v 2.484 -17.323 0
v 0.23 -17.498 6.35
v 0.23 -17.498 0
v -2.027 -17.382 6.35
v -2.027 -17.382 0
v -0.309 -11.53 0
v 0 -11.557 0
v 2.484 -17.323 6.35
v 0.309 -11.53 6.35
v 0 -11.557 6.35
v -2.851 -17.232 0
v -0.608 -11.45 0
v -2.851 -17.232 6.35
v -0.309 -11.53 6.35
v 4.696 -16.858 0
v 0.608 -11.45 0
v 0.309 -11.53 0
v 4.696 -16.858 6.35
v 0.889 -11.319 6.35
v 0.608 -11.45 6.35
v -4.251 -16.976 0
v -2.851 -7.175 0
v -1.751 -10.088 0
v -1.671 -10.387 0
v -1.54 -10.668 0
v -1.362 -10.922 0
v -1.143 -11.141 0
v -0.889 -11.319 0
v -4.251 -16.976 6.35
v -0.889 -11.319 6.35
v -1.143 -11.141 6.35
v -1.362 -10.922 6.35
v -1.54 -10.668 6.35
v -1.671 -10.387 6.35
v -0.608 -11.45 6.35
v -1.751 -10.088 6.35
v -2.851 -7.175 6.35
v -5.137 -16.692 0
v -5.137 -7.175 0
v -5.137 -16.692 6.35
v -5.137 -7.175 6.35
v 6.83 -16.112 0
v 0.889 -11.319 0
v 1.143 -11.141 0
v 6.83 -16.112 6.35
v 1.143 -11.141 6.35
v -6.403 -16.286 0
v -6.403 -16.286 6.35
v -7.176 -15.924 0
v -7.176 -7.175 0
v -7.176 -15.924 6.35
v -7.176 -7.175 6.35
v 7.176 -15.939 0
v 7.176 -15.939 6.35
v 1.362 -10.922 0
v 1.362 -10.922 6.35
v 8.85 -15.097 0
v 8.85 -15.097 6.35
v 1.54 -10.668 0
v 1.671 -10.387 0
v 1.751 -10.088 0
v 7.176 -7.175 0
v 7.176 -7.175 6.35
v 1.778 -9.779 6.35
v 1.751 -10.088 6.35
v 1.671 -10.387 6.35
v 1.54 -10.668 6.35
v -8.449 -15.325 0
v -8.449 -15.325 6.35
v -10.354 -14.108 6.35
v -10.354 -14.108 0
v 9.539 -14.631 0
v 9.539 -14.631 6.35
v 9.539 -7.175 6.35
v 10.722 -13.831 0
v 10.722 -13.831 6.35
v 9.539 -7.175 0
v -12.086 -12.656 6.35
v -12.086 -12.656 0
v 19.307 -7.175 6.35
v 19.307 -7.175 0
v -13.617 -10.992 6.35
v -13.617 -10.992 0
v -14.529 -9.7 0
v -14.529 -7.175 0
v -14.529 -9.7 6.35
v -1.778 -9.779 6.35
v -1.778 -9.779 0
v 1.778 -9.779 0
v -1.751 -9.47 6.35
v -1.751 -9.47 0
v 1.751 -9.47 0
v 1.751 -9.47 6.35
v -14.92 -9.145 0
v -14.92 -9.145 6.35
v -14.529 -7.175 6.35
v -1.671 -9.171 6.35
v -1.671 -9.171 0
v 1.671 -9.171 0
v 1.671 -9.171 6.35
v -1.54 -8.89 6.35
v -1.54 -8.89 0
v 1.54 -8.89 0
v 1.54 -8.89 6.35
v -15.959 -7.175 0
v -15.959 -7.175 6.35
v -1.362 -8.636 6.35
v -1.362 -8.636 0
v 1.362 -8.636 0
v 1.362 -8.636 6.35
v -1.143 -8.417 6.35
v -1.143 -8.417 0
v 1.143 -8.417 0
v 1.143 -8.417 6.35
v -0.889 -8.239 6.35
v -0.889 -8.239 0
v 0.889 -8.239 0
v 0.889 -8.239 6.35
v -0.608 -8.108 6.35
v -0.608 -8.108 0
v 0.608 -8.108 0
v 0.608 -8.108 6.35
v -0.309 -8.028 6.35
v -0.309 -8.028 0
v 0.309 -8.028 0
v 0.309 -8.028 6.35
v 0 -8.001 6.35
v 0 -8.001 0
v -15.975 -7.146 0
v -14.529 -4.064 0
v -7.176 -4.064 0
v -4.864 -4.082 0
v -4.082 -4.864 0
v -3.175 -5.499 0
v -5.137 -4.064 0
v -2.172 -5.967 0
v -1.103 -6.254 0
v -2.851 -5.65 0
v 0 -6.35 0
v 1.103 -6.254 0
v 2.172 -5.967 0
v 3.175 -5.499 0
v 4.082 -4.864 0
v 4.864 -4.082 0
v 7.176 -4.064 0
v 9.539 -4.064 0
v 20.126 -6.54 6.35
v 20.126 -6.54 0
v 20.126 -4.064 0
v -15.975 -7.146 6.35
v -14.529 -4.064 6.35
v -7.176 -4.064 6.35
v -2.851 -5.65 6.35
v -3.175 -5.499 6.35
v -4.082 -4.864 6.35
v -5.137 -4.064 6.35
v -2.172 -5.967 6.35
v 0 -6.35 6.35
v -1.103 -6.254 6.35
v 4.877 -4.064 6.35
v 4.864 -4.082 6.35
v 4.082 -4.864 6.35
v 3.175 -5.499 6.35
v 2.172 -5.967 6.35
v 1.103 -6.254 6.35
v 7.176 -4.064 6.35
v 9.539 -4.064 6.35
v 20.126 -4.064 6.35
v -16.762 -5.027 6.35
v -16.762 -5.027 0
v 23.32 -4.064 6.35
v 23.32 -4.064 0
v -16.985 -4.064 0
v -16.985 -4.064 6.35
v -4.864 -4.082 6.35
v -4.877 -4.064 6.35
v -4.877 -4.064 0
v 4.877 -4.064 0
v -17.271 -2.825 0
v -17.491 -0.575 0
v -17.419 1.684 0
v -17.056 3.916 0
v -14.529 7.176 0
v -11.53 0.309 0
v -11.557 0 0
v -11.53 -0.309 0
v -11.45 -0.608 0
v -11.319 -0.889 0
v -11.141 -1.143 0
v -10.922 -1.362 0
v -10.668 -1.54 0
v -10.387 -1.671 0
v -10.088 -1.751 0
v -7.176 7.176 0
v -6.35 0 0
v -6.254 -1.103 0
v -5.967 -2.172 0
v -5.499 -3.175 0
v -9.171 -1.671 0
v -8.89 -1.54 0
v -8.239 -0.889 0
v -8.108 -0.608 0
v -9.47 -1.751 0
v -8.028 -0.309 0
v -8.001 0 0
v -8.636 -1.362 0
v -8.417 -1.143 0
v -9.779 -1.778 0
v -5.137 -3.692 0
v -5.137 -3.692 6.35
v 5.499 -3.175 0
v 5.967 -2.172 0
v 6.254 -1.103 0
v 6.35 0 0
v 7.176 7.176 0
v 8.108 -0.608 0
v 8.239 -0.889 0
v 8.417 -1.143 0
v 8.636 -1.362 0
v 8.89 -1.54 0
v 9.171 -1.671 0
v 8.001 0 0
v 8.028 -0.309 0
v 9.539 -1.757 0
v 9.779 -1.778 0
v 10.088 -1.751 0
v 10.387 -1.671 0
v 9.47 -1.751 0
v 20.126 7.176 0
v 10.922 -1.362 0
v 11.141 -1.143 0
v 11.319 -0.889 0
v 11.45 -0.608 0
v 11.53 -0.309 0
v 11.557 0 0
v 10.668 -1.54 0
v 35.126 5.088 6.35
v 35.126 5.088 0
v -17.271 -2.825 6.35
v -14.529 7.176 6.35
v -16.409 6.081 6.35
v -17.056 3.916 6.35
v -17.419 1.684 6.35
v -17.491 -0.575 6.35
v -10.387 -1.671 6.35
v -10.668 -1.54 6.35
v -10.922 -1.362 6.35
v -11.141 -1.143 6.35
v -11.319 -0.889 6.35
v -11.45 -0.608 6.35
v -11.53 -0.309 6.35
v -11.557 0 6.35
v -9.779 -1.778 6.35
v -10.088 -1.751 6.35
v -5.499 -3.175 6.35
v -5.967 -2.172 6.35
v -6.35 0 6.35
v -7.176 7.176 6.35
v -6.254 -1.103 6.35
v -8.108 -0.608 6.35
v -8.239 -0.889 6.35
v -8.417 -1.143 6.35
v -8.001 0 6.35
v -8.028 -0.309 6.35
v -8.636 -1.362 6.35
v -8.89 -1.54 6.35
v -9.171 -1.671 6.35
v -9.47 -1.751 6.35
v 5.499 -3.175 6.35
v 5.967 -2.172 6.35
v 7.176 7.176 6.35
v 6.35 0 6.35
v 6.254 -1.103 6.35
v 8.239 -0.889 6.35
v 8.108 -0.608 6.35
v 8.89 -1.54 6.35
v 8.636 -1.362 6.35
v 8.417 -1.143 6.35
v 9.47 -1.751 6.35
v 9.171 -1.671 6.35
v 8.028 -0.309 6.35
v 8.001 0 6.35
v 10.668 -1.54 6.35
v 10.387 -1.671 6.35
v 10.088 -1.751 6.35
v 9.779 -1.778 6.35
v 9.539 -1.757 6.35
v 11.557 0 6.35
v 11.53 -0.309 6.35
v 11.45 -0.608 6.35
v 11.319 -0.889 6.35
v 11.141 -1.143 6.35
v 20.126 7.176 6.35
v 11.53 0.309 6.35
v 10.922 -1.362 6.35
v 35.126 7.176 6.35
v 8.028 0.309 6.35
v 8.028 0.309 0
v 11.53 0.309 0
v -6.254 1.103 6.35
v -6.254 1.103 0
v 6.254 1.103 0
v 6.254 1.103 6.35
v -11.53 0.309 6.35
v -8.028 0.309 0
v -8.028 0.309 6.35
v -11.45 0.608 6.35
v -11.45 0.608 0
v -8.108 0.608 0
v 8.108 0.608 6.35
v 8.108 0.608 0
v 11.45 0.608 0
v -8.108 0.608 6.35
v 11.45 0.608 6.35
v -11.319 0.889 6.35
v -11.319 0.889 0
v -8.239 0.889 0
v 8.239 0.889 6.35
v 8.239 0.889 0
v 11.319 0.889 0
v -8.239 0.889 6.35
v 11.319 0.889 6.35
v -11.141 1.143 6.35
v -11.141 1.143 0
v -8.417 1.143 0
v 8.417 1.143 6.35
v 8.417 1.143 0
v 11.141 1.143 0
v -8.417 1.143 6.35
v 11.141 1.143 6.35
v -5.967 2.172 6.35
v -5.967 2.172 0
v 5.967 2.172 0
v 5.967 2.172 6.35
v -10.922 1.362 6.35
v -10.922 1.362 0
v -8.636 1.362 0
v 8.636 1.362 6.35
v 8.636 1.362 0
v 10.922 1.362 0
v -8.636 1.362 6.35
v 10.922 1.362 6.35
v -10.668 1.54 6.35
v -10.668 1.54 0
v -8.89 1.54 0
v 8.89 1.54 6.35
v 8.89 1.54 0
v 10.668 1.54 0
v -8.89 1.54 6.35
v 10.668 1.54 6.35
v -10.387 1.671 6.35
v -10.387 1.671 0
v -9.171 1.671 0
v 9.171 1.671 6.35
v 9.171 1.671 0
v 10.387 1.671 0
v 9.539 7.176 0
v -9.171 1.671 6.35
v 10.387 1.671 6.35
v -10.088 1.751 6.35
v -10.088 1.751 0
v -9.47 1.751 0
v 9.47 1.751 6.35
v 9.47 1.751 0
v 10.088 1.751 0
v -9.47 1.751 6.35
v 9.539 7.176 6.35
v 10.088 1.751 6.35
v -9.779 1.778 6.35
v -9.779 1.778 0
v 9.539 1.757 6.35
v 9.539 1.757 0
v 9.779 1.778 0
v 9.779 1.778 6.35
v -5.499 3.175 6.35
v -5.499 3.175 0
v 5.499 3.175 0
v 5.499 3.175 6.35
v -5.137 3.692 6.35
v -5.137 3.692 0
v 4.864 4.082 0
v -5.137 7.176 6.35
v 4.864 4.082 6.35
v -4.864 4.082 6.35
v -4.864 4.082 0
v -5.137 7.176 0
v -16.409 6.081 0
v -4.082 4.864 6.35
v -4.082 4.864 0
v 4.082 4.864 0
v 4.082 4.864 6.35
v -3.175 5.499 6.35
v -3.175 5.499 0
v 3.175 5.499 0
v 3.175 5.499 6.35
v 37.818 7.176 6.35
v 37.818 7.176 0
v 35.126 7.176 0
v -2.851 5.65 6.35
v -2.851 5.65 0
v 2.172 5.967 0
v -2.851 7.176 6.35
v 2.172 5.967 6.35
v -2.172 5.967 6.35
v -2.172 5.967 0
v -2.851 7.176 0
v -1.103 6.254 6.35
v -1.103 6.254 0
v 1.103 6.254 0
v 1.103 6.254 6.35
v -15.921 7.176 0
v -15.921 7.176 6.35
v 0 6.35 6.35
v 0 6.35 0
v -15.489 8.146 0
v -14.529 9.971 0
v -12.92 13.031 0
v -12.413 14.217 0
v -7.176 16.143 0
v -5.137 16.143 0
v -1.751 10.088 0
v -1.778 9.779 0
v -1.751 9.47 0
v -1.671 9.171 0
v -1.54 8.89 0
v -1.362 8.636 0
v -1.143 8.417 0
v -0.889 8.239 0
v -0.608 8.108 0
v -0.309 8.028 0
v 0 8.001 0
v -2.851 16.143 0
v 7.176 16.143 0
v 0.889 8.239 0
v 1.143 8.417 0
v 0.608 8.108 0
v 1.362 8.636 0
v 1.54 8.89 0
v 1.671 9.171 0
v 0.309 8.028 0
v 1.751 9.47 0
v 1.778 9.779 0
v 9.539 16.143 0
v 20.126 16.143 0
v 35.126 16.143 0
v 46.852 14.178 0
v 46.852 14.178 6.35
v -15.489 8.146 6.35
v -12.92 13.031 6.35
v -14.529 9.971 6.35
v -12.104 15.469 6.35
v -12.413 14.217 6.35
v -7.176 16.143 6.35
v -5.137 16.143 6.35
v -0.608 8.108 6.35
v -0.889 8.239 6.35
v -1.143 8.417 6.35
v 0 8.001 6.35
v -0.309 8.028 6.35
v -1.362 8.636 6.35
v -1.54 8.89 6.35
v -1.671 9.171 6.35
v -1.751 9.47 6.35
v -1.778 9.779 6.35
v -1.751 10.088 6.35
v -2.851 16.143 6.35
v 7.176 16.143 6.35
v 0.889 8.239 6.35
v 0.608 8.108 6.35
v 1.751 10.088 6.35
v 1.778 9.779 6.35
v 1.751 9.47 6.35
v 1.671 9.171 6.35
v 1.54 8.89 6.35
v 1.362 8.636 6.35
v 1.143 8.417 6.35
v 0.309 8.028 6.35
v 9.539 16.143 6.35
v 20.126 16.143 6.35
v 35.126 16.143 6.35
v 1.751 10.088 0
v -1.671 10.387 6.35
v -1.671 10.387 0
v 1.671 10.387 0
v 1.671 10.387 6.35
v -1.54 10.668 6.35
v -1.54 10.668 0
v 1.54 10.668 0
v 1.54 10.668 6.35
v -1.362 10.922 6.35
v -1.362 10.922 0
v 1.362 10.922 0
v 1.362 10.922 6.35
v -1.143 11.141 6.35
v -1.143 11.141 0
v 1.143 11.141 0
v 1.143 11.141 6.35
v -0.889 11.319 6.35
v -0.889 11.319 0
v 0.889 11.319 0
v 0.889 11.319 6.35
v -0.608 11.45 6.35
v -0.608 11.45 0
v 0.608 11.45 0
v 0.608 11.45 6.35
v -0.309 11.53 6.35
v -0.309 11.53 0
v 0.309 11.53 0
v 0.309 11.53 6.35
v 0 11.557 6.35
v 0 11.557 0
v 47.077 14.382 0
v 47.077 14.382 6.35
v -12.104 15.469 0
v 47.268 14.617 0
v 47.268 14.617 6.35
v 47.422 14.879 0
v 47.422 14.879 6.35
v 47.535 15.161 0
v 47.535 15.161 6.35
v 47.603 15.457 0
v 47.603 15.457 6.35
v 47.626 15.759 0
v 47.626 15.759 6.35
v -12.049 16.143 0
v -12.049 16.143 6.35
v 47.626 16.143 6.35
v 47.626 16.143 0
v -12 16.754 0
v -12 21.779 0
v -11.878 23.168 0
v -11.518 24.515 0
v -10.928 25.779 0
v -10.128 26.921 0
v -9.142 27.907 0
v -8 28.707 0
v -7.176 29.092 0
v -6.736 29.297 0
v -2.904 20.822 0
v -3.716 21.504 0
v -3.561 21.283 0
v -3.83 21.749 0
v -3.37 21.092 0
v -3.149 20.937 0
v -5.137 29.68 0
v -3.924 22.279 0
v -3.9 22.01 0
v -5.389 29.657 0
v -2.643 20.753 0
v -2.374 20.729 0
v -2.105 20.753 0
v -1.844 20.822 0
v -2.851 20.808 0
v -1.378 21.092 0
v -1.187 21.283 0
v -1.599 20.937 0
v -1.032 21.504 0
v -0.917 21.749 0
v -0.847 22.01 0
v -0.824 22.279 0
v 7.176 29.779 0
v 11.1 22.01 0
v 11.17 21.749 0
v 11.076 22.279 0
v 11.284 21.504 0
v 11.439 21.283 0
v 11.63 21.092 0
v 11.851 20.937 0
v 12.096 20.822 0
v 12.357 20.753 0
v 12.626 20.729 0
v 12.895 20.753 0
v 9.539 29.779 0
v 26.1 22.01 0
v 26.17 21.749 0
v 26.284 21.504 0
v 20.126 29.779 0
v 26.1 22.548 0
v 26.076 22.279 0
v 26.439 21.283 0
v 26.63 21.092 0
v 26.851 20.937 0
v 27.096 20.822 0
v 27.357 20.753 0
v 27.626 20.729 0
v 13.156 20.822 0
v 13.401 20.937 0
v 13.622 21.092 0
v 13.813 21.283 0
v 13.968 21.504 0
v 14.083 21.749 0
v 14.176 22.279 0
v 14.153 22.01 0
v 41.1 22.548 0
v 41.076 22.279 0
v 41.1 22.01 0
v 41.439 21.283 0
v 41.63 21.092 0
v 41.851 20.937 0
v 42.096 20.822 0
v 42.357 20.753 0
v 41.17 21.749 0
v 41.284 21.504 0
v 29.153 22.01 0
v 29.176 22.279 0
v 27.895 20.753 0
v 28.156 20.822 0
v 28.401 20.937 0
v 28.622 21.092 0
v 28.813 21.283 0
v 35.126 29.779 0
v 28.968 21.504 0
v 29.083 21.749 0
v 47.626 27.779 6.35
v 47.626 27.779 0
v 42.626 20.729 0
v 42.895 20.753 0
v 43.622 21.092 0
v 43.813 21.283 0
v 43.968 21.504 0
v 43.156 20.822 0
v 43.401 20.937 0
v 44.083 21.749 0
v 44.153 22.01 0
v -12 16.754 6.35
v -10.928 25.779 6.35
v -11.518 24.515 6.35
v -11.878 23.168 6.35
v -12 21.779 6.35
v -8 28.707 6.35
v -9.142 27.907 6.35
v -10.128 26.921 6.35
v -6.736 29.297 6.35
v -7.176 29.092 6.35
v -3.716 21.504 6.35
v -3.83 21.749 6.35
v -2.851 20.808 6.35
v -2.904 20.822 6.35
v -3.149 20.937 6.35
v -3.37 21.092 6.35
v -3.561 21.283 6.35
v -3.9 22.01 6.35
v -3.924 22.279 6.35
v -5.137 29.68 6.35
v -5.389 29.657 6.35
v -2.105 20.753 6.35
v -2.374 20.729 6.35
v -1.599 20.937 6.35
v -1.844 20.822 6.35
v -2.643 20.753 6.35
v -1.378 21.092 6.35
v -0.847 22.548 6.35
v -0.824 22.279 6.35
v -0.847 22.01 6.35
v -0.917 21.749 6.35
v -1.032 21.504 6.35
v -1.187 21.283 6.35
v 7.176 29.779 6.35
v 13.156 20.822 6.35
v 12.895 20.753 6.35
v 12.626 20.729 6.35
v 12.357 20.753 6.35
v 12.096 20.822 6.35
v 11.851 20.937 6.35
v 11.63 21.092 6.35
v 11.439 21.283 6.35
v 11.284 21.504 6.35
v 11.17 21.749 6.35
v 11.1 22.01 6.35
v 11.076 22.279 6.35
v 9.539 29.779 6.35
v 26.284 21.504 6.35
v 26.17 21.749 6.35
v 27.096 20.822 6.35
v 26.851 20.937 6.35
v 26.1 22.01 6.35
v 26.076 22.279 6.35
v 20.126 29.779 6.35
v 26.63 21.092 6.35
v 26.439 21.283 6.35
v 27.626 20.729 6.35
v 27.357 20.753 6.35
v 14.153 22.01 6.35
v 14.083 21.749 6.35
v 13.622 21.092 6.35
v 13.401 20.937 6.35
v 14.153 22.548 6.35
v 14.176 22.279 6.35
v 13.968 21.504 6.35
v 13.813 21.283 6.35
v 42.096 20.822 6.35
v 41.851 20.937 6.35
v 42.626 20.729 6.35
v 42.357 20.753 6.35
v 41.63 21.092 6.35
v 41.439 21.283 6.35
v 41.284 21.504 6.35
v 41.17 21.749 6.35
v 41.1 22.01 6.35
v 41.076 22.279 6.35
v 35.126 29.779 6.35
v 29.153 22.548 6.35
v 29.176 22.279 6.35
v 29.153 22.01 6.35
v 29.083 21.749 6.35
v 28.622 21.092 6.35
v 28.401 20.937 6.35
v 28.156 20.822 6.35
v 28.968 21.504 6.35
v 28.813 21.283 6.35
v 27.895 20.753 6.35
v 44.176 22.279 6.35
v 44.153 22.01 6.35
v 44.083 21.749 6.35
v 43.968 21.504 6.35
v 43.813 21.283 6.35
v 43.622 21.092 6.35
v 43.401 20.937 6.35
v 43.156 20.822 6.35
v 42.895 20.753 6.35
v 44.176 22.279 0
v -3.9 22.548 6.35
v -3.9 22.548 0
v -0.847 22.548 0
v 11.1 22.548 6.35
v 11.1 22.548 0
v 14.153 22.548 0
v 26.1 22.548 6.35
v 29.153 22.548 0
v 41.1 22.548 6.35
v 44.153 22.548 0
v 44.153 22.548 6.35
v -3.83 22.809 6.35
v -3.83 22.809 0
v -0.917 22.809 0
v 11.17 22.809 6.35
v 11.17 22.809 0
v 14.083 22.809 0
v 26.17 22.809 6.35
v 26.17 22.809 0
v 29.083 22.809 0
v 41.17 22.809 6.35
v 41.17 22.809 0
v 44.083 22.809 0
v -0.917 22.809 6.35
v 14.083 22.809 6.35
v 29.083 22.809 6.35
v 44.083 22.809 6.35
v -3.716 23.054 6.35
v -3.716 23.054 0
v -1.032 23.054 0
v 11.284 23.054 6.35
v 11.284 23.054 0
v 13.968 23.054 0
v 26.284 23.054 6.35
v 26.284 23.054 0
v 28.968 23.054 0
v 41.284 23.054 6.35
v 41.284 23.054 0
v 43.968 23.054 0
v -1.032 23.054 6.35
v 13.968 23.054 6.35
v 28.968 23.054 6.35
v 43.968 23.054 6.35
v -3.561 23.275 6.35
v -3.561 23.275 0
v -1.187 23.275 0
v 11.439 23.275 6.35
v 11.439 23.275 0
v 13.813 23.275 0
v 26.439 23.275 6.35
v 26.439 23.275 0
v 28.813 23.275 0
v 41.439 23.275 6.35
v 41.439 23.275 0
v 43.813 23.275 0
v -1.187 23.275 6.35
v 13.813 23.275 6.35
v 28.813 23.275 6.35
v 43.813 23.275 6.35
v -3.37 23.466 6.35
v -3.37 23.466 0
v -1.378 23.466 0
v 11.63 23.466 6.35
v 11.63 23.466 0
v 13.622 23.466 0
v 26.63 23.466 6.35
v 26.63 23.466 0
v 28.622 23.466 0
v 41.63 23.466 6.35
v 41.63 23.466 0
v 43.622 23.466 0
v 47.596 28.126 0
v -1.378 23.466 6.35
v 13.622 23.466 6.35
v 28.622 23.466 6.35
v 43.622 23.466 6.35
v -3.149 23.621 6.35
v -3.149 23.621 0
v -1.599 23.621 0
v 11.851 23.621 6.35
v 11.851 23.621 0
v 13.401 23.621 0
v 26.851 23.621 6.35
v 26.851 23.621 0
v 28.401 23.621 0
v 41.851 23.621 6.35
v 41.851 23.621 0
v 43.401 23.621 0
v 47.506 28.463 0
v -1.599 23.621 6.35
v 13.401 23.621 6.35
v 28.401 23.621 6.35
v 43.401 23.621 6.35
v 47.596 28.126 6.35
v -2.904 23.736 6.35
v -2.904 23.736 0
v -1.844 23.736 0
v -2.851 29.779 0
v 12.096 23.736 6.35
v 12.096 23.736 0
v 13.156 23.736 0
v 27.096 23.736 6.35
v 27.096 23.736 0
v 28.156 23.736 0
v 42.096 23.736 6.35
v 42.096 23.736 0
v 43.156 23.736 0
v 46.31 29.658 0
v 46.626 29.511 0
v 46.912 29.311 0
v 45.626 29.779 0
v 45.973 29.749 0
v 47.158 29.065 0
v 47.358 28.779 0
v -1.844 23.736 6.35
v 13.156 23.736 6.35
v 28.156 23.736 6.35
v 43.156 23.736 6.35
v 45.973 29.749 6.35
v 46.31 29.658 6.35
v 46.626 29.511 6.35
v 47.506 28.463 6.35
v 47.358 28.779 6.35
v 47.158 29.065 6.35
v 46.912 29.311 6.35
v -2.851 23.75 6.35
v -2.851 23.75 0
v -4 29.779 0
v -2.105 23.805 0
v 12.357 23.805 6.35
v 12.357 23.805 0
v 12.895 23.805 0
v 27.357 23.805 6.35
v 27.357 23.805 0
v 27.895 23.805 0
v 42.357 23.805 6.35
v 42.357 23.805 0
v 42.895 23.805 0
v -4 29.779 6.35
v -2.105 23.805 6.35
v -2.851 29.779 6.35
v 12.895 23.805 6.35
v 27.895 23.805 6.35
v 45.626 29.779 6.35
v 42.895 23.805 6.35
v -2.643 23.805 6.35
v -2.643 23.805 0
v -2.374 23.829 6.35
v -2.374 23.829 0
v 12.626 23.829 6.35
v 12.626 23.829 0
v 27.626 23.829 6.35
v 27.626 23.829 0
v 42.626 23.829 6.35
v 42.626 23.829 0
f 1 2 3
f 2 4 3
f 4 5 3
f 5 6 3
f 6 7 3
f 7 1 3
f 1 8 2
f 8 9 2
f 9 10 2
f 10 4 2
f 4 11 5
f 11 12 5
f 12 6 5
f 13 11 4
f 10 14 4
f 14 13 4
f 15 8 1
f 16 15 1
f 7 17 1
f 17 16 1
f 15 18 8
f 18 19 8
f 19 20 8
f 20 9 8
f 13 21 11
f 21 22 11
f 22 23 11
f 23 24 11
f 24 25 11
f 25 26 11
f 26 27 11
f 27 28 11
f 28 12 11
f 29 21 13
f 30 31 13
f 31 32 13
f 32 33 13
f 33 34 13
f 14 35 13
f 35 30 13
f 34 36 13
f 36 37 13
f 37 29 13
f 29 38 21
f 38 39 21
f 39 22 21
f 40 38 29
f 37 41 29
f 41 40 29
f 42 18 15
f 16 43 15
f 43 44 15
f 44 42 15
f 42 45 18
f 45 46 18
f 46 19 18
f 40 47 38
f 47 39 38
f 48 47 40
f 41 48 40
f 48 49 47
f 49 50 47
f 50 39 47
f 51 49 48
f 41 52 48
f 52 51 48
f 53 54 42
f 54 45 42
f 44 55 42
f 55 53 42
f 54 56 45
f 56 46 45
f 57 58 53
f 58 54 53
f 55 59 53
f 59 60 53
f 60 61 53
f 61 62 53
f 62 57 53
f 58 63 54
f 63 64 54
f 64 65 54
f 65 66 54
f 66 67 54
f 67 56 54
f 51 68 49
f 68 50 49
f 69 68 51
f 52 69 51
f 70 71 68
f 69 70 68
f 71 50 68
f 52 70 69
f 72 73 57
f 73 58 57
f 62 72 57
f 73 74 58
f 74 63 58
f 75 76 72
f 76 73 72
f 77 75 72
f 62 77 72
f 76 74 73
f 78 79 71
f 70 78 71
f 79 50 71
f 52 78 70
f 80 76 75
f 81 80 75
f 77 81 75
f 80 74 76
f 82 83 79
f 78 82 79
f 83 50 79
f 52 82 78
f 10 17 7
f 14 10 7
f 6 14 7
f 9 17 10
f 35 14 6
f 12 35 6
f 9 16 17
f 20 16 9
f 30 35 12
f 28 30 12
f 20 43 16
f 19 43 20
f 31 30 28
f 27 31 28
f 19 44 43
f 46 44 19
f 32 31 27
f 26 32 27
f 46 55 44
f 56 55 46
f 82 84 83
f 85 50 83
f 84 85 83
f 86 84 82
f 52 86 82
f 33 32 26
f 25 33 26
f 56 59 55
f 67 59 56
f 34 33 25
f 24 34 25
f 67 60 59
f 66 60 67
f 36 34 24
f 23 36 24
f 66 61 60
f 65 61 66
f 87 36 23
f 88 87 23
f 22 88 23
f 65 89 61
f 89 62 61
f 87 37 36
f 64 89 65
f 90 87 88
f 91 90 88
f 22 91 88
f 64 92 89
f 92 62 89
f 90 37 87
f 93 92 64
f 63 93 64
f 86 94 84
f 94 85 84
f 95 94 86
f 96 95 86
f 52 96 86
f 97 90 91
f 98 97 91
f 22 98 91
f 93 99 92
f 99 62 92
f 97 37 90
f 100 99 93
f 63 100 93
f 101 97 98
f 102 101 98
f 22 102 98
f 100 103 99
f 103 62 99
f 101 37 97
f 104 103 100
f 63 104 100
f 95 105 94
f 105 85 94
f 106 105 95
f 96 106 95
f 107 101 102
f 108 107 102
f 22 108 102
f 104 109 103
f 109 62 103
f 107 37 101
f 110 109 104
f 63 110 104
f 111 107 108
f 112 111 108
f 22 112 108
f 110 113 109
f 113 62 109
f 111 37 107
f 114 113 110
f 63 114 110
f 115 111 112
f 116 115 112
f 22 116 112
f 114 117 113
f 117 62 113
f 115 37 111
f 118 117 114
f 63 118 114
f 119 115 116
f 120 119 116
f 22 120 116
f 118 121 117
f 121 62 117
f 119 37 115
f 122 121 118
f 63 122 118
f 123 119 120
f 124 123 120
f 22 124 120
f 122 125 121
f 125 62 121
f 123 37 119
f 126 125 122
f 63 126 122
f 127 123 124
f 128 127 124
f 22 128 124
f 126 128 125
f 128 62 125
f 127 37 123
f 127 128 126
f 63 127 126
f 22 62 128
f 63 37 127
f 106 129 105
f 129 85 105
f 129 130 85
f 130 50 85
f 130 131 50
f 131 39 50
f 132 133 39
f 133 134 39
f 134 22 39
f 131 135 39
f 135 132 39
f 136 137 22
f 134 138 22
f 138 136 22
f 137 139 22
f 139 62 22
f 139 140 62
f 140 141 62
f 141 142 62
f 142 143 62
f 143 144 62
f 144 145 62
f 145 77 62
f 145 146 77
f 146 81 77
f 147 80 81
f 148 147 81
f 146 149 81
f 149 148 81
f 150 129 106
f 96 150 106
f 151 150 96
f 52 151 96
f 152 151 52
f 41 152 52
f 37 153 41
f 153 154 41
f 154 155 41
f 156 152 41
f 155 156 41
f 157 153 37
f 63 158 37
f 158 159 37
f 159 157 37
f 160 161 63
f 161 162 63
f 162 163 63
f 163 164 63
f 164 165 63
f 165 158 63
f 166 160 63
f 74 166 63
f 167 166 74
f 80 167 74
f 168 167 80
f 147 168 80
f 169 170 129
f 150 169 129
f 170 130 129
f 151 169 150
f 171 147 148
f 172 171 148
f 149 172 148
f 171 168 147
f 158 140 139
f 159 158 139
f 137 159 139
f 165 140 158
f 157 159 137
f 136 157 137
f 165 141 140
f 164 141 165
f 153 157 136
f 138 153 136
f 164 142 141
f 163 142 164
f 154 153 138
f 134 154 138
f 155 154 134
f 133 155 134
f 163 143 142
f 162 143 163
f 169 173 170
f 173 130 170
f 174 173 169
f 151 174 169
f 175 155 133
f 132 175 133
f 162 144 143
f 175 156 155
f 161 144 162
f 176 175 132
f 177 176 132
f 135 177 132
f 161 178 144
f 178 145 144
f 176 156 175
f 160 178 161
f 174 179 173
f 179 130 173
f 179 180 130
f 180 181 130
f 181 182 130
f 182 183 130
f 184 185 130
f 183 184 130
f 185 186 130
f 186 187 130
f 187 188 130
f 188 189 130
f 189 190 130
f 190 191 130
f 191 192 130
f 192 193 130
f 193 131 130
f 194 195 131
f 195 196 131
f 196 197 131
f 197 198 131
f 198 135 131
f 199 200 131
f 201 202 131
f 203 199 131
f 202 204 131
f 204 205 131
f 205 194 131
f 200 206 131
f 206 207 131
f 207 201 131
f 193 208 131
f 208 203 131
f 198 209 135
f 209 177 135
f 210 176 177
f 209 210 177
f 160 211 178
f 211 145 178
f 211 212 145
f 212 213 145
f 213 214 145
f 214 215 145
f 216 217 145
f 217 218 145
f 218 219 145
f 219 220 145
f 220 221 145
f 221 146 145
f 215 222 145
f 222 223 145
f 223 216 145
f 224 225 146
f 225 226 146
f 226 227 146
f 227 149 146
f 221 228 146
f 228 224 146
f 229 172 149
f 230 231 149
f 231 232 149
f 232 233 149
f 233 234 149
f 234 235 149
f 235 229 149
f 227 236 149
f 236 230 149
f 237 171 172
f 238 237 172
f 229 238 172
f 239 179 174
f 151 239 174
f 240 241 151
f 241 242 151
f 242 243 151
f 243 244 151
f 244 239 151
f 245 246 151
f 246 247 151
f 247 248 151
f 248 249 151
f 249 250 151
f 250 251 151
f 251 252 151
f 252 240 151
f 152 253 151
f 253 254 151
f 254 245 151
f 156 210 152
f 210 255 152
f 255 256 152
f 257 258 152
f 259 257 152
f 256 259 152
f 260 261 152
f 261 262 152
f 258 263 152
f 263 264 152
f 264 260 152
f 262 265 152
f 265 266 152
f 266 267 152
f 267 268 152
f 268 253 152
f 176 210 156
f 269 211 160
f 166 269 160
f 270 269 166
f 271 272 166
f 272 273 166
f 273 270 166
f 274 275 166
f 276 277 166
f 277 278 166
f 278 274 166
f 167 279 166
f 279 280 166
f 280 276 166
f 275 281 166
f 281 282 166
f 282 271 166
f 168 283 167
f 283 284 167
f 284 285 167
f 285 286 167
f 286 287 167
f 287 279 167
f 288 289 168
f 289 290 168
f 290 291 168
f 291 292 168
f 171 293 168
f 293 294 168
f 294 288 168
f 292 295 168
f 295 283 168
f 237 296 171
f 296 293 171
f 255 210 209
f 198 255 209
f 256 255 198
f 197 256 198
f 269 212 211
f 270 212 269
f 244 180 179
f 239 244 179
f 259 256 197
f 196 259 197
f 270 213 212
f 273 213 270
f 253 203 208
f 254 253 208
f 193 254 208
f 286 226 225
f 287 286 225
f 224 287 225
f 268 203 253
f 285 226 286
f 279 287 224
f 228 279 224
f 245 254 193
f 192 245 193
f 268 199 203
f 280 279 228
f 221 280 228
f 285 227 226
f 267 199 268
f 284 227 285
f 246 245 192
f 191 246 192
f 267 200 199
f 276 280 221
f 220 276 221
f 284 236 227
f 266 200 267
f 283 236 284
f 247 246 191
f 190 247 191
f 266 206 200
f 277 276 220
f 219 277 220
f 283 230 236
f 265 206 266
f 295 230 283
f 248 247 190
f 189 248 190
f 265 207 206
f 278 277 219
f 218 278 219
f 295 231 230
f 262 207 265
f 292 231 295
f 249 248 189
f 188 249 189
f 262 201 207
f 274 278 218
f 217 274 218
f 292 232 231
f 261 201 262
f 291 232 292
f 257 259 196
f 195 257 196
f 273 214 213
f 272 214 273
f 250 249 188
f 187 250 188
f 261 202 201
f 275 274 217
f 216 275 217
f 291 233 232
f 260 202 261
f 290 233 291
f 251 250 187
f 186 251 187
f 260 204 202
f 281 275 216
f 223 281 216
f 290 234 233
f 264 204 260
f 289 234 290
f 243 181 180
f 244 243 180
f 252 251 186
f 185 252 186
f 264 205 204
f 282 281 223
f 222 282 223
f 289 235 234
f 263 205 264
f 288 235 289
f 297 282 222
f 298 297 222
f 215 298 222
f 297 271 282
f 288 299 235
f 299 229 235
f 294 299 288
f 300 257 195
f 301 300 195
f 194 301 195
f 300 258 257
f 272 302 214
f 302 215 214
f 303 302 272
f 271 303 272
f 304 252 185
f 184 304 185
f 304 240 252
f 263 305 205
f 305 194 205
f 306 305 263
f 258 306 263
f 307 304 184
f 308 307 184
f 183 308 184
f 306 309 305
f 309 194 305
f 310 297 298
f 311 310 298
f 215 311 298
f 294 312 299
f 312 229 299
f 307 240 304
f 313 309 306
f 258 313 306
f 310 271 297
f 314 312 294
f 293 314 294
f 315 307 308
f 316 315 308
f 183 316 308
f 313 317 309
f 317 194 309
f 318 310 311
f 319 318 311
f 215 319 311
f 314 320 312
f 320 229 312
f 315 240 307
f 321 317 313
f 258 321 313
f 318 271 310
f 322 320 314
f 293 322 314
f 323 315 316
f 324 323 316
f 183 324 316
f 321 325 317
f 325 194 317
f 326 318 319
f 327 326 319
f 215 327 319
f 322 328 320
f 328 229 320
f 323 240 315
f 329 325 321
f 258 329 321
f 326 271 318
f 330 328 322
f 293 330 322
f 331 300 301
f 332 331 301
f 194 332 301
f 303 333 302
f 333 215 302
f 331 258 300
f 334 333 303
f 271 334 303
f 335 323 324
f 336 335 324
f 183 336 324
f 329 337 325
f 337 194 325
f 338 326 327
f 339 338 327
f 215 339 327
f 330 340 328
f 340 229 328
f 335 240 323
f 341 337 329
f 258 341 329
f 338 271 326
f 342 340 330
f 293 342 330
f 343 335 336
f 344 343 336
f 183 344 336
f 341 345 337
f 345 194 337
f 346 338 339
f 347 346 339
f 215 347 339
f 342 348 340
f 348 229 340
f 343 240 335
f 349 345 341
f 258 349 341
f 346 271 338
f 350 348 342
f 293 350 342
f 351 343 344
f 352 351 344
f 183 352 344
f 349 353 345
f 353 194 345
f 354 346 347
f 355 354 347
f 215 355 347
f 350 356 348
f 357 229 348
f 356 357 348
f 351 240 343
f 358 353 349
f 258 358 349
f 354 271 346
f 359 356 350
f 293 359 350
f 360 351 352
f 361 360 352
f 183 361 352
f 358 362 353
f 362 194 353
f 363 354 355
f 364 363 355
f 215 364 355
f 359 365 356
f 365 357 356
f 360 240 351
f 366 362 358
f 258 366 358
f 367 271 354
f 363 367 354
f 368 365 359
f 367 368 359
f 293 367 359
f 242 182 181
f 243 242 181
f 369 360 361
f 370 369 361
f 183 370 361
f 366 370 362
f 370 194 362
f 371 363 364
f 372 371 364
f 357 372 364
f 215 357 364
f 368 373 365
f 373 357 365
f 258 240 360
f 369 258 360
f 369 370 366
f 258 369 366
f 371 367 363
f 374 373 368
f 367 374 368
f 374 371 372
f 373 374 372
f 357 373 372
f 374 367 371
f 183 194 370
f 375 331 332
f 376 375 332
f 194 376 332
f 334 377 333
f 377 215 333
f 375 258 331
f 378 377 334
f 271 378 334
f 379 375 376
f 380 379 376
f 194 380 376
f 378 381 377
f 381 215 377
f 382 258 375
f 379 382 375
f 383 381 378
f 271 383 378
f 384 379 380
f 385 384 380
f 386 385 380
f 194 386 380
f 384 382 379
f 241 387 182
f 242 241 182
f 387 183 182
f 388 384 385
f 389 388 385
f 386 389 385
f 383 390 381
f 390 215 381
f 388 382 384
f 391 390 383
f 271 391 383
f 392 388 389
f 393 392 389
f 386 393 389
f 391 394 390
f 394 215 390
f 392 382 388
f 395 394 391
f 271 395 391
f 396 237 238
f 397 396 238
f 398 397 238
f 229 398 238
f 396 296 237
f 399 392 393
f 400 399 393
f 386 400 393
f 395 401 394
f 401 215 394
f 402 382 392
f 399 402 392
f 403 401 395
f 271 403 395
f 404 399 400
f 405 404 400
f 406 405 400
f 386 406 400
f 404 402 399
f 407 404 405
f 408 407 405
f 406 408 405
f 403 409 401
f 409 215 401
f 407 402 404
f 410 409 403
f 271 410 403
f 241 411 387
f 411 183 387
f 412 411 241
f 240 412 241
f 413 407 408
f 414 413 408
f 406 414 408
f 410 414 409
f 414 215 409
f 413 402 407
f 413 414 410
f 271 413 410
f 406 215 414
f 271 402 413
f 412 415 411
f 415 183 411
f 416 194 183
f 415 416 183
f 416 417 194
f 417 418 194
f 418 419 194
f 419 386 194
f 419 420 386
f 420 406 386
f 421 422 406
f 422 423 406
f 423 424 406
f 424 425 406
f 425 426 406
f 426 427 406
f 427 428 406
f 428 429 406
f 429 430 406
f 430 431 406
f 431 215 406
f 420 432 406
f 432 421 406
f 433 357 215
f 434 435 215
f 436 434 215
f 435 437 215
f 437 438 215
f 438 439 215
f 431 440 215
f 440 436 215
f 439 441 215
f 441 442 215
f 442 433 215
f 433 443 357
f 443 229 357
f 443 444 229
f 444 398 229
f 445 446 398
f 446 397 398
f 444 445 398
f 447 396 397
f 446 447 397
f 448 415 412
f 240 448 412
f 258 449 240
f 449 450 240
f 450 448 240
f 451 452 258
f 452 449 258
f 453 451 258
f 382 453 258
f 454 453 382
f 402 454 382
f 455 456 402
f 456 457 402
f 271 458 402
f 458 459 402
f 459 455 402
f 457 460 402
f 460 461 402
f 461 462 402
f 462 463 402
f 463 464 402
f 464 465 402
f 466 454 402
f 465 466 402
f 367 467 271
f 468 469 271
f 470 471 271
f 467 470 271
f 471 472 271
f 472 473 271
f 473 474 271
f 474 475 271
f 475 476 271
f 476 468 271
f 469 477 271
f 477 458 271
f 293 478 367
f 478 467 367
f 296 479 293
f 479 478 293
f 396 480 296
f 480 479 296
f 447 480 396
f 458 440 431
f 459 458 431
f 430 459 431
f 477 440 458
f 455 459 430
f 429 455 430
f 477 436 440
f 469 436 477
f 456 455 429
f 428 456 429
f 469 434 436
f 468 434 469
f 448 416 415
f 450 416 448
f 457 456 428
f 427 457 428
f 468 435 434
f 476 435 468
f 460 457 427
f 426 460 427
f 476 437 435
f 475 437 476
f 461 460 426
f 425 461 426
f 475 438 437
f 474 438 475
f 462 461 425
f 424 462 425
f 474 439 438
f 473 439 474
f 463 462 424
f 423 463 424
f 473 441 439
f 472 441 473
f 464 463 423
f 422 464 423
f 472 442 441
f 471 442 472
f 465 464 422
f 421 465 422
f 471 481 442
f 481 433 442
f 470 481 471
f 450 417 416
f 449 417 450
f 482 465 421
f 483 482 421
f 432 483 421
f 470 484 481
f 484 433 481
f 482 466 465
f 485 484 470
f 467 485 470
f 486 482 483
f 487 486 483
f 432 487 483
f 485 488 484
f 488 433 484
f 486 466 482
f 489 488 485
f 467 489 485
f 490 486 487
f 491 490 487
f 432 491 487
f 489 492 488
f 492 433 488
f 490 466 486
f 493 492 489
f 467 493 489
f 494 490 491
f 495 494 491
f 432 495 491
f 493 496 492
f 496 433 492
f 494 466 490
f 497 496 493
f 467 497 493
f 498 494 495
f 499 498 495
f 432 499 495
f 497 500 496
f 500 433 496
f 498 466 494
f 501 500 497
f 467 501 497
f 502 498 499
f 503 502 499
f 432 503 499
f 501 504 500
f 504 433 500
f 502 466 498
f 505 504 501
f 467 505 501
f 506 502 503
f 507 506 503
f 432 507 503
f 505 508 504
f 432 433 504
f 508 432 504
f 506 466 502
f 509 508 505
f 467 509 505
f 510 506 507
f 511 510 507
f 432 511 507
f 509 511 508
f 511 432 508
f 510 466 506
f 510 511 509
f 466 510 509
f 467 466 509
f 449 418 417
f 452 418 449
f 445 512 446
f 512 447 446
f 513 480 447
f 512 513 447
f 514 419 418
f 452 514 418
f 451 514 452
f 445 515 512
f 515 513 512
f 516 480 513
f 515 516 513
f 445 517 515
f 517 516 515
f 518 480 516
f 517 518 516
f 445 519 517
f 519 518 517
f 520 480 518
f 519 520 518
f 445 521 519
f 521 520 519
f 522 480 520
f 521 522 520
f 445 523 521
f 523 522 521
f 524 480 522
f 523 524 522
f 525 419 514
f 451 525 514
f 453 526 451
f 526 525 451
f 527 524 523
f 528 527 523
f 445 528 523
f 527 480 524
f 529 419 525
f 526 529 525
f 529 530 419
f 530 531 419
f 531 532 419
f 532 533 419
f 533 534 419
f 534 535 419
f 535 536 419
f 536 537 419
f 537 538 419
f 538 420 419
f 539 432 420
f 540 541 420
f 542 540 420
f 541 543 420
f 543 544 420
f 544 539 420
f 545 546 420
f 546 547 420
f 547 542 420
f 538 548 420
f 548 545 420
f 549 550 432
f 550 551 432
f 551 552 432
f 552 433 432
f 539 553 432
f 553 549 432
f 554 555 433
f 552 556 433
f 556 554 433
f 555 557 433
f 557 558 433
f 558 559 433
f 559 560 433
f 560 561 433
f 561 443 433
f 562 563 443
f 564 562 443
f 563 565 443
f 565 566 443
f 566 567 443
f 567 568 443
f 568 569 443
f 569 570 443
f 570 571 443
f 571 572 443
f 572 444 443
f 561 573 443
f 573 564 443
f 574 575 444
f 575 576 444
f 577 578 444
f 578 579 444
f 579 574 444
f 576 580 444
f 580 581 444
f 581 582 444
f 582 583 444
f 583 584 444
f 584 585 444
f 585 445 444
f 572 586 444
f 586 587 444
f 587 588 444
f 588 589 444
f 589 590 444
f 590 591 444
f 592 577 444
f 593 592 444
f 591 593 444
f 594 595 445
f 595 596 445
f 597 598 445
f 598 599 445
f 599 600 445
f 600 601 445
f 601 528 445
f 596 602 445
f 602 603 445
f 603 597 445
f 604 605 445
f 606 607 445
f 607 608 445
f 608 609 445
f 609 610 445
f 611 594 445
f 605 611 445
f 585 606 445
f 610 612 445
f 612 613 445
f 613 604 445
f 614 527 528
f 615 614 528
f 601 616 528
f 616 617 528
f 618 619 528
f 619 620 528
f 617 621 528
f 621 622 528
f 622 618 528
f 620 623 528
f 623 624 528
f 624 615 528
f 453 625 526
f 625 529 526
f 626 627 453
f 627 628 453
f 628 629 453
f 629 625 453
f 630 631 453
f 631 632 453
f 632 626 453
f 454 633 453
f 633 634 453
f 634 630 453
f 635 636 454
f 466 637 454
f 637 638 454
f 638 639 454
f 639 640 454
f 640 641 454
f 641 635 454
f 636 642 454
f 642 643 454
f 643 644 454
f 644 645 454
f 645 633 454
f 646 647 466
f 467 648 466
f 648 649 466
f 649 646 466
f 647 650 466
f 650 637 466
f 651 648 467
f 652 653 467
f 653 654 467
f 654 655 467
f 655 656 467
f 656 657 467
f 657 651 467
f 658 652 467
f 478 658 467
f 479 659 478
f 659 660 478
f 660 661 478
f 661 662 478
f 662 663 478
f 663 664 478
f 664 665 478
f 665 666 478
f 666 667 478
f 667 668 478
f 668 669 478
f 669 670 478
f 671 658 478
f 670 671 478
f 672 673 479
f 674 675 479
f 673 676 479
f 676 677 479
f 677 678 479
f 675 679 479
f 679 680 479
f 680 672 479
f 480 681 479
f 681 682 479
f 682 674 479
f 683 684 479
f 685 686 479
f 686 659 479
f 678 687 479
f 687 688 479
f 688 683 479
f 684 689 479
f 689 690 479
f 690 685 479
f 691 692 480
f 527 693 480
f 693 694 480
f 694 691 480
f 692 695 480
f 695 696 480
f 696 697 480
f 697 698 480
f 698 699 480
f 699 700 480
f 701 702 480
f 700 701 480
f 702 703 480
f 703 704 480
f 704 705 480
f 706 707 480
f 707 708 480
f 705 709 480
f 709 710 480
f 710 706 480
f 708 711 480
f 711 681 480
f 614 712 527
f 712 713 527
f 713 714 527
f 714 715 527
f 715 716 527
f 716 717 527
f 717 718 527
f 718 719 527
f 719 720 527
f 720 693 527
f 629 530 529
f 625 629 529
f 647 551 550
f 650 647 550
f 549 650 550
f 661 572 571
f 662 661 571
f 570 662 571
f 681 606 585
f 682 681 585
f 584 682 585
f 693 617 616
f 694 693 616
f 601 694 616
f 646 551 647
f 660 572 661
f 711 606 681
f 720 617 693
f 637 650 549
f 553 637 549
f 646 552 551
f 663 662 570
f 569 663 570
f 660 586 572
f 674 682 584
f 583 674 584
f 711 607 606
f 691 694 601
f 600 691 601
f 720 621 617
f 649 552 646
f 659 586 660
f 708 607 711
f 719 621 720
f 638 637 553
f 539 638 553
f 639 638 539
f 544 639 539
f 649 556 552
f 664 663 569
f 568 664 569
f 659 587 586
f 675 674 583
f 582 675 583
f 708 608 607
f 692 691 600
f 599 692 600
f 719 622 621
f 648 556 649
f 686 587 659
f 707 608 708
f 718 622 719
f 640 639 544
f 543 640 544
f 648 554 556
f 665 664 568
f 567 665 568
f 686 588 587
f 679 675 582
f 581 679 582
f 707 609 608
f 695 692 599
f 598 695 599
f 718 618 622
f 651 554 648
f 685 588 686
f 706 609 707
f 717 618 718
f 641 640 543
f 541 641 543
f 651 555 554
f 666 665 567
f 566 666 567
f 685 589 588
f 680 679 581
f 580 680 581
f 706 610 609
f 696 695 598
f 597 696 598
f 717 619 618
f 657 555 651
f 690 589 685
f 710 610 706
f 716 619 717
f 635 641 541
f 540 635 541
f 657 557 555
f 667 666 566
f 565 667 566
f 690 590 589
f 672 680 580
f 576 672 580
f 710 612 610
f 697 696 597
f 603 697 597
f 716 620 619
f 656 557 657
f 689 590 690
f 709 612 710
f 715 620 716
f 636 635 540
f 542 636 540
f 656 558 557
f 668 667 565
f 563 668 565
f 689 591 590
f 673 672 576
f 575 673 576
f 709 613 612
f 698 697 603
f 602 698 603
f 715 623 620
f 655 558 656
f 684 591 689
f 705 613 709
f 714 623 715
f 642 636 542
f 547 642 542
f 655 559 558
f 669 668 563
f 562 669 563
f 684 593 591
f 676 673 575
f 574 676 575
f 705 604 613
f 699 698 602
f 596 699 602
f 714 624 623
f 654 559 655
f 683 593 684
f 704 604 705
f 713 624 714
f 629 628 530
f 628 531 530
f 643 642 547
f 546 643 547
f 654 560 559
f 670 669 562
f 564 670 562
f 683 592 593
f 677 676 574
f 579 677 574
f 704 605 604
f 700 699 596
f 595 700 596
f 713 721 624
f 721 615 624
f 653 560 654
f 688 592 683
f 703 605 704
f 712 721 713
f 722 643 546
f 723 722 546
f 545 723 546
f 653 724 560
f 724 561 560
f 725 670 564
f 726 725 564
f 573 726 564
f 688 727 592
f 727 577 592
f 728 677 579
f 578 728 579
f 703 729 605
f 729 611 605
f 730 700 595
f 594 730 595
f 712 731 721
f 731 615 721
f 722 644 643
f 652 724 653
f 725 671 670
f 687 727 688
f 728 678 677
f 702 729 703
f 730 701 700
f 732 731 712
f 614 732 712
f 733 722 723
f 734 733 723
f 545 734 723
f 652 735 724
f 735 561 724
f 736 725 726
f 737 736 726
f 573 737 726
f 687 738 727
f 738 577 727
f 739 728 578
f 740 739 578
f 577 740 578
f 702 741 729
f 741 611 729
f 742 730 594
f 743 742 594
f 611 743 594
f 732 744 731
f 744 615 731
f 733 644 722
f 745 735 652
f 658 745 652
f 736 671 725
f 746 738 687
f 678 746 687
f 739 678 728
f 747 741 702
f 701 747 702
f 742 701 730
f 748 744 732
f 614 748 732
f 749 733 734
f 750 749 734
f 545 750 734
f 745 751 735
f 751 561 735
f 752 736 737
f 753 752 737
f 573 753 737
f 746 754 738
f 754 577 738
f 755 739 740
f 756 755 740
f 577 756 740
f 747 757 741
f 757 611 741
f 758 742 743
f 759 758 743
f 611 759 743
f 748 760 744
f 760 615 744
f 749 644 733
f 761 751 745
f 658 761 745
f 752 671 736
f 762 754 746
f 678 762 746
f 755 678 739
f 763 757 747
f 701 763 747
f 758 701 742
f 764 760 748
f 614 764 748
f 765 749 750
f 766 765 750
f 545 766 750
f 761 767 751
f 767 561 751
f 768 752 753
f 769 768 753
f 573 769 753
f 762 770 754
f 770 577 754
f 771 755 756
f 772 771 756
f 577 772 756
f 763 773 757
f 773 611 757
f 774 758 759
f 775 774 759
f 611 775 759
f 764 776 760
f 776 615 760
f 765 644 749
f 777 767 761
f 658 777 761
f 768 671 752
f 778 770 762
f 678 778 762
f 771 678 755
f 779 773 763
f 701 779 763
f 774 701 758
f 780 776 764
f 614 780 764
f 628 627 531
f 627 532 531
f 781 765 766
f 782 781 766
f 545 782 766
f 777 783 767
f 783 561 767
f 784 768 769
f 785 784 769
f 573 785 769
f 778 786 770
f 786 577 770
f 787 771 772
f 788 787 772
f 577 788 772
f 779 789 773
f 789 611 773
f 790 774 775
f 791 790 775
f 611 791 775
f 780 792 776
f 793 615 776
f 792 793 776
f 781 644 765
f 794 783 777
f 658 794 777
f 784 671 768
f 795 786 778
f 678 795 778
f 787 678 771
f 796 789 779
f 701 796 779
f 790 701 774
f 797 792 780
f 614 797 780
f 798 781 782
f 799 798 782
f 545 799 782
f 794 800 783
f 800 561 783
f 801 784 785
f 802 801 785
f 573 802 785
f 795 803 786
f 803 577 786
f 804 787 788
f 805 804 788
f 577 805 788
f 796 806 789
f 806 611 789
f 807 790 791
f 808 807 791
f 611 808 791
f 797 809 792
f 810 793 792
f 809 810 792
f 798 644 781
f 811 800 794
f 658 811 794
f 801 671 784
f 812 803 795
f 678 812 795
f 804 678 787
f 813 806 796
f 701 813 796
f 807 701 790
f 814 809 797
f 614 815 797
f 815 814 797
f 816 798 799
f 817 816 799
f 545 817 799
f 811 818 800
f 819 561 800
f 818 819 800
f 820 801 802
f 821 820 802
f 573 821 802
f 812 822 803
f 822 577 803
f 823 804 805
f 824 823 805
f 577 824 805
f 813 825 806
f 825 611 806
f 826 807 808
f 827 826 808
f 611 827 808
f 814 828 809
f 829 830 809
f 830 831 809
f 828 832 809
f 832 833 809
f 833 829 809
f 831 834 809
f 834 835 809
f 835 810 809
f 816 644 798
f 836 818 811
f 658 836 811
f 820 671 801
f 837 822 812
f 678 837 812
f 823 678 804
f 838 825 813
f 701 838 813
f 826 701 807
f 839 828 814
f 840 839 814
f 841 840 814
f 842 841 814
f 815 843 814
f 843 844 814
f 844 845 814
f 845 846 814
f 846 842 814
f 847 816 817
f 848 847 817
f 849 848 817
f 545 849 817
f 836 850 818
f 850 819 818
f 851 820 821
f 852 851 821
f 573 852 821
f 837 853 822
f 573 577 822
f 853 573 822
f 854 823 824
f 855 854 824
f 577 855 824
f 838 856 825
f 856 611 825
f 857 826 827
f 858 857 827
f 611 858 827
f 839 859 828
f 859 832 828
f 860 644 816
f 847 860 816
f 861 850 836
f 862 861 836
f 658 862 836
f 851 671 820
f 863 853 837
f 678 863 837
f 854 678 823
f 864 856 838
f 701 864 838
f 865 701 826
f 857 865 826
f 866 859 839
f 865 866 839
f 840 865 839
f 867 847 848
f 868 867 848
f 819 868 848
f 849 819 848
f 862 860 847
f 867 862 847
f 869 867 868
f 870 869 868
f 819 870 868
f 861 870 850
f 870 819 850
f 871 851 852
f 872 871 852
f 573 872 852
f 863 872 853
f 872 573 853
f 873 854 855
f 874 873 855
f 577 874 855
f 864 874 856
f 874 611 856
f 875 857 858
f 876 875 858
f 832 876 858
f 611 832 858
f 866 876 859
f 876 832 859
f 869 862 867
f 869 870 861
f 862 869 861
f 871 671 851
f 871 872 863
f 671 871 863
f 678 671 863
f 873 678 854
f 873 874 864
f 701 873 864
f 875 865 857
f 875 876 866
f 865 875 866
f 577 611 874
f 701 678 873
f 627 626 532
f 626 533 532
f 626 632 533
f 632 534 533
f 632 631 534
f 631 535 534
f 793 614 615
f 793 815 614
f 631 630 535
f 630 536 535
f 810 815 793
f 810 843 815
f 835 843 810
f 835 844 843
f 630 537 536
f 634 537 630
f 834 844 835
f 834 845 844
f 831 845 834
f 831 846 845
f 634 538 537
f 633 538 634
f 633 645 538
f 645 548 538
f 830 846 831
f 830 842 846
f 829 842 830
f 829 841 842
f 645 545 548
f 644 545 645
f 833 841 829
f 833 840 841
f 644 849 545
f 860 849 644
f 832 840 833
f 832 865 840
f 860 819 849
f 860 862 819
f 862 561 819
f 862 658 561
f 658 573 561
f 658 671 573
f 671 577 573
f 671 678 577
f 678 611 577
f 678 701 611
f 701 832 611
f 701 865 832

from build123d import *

# Parameters (mm, degrees)
SKETCH1_R           = 1.778
SKETCH1_R_2         = 1.55
SKETCH1_R_3         = 6.35
BOSS_EXTRUDE1_DEPTH = 6.35
FILLET2_R           = 2
FILLET4_R           = 8


with BuildPart() as part:
    # Sketch1 → Boss-Extrude1 (new body)
    with BuildSketch(Plane.XY):
        with BuildLine():
            Line((47.626117997, 29.779), (-12, 29.779))
            Line((-12, 29.779), (-12, 14.779))
            Line((-12, 14.779), (-15.488554272, 8.145838605))
            ThreePointArc((-15.488554272, 8.145838605), (-11.243708258, -13.410034474), (10.72211713, -13.830625591))
            Line((10.72211713, -13.830625591), (47.626117997, 14.779))
            Line((47.626117997, 14.779), (47.626117997, 29.779))
        make_face()
        with Locations((-9.779, 0)):
            Circle(SKETCH1_R, mode=Mode.SUBTRACT)
        with Locations((0, -9.779)):
            Circle(SKETCH1_R, mode=Mode.SUBTRACT)
        with Locations((0, 9.779)):
            Circle(SKETCH1_R, mode=Mode.SUBTRACT)
        with Locations((9.779, 0)):
            Circle(SKETCH1_R, mode=Mode.SUBTRACT)
        with Locations((-2.373882003, 22.279)):
            Circle(SKETCH1_R_2, mode=Mode.SUBTRACT)
        with Locations((12.626117997, 22.279)):
            Circle(SKETCH1_R_2, mode=Mode.SUBTRACT)
        with Locations((27.626117997, 22.279)):
            Circle(SKETCH1_R_2, mode=Mode.SUBTRACT)
        with Locations((42.626117997, 22.279)):
            Circle(SKETCH1_R_2, mode=Mode.SUBTRACT)
        Circle(SKETCH1_R_3, mode=Mode.SUBTRACT)
    extrude(amount=BOSS_EXTRUDE1_DEPTH)

    # Fillet2
    fillet2_edges = [part.edges().sort_by_distance(p)[0] for p in [
        (47.626117997, 29.779, 3.175),
        (47.626117997, 14.779, 3.175),
    ]]
    fillet(fillet2_edges, radius=FILLET2_R)

    # Fillet4
    fillet4_edges = [part.edges().sort_by_distance(p)[0] for p in [
        (-12, 14.779, 3.175),
        (-12, 29.779, 3.175),
    ]]
    fillet(fillet4_edges, radius=FILLET4_R)


solid = part.part
